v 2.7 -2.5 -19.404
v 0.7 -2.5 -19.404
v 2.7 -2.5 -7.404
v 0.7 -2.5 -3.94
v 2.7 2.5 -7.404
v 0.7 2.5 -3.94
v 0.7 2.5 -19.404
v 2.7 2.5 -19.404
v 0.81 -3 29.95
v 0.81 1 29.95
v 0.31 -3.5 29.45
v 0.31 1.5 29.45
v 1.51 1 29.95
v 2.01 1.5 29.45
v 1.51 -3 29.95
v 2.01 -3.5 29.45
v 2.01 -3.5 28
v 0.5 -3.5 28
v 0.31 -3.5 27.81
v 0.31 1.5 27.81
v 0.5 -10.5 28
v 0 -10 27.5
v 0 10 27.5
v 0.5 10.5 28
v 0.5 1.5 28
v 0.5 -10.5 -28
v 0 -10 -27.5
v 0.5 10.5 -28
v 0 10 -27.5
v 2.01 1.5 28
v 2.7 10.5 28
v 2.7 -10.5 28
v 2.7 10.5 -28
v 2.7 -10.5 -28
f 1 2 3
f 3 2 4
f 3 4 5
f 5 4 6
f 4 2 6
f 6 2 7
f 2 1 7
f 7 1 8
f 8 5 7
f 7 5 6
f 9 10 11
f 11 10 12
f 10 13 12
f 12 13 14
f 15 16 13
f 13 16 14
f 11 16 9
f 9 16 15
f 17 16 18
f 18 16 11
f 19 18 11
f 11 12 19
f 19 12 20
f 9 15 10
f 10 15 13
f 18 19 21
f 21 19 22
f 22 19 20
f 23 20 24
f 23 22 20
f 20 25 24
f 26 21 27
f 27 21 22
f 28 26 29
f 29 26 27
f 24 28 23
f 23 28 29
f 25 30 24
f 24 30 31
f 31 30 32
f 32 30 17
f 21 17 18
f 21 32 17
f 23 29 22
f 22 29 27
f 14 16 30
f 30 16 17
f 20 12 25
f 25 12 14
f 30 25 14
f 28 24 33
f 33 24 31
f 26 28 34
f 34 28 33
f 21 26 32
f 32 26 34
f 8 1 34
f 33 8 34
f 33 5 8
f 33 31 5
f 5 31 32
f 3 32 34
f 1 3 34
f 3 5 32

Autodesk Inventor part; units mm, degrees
ref_plane "YZ Plane" through (0, 0, 0) normal (1, 0, 0) x (0, 1, 0)
ref_plane "XZ Plane" through (0, 0, 0) normal (0, 1, 0) x (-1, 0, 0)
ref_plane "XY Plane" through (0, 0, 0) normal (0, 0, 1) x (1, 0, 0)
sketch "스케치1" plane through (0, 0, 0) normal (1, 0, 0) x (0, 1, 0)
  line L0 (10.5, 28) -> (-10.5, 28)
  line L1 (-10.5, 28) -> (-10.5, -28)
  line L2 (-10.5, -28) -> (10.5, -28)
  line L3 (10.5, -28) -> (10.5, 28)
  line L4 (10.5, 28) -> (-10.5, -28) construction
  line L5 (-10.5, 28) -> (10.5, -28) construction
  point P0 (0, 0)
  dimension "d0" = 21
  dimension "d1" = 56
extrude "돌출1" add sketch "스케치1" along normal blind 2.7
sketch "스케치2" plane through (0, -10.5, 28) normal (0, 0, 1) x (1, 0, 0)
  line L0 (0.31, 12) -> (2.01, 12)
  line L1 (2.01, 12) -> (2.01, 7)
  line L2 (2.01, 7) -> (0.31, 7)
  line L3 (0.31, 7) -> (0.31, 12)
  line L4 (0.31, 12) -> (2.01, 7) construction
  line L5 (2.01, 12) -> (0.31, 7) construction
  line L6 (-0.39, -0.5) -> (-0.39, 15)
  line L7 (-0.39, -0.5) -> (2.9, -0.5)
  line L8 (2.7, 0) -> (2.7, 21) projected
  line L9 (0, 0) -> (2.7, 0) projected
  point P0 (0, 10.5)
  point P1 (35, -7)
  point P2 (1.16, 9.5)
  dimension "d4" = 1.7
  dimension "d5" = 5
  dimension "d6" = 0.7
  dimension "d8" = 0.69
  dimension "d21" = 9.5
extrude "돌출2" add sketch "스케치2" along normal blind 1.95
chamfer "모따기1" distance 0.5 angle 45 8 edges at (0, -10.5, 0) (0, 0, 28) (0, 10.5, 0) (0, 0, -28) (2.01, -1, 29.95) (1.16, 1.5, 29.95) (0.31, -1, 29.95) (1.16, -3.5, 29.95)
sketch "스케치3" plane through (0, 0, 0) normal (0, 1, 0) x (-1, 0, 0)
  line L0 (-2.7, 28) -> (-2.7, -28) projected
  line L1 (-2.7, -7.4045) -> (-0.7, -3.9404)
  line L2 (-0.7, -3.9404) -> (-0.7, -19.4045)
  line L3 (-0.7, -19.4045) -> (-2.7, -19.4045)
  line L4 (-2.7, -19.4045) -> (-2.7, -7.4045)
  point P0 (0, 0)
  dimension "d18" = 12
  dimension "d19" = 30
  dimension "d20" = 2
extrude "돌출4" cut sketch "스케치3" along normal mid plane 5
properties part number "bt cover"
